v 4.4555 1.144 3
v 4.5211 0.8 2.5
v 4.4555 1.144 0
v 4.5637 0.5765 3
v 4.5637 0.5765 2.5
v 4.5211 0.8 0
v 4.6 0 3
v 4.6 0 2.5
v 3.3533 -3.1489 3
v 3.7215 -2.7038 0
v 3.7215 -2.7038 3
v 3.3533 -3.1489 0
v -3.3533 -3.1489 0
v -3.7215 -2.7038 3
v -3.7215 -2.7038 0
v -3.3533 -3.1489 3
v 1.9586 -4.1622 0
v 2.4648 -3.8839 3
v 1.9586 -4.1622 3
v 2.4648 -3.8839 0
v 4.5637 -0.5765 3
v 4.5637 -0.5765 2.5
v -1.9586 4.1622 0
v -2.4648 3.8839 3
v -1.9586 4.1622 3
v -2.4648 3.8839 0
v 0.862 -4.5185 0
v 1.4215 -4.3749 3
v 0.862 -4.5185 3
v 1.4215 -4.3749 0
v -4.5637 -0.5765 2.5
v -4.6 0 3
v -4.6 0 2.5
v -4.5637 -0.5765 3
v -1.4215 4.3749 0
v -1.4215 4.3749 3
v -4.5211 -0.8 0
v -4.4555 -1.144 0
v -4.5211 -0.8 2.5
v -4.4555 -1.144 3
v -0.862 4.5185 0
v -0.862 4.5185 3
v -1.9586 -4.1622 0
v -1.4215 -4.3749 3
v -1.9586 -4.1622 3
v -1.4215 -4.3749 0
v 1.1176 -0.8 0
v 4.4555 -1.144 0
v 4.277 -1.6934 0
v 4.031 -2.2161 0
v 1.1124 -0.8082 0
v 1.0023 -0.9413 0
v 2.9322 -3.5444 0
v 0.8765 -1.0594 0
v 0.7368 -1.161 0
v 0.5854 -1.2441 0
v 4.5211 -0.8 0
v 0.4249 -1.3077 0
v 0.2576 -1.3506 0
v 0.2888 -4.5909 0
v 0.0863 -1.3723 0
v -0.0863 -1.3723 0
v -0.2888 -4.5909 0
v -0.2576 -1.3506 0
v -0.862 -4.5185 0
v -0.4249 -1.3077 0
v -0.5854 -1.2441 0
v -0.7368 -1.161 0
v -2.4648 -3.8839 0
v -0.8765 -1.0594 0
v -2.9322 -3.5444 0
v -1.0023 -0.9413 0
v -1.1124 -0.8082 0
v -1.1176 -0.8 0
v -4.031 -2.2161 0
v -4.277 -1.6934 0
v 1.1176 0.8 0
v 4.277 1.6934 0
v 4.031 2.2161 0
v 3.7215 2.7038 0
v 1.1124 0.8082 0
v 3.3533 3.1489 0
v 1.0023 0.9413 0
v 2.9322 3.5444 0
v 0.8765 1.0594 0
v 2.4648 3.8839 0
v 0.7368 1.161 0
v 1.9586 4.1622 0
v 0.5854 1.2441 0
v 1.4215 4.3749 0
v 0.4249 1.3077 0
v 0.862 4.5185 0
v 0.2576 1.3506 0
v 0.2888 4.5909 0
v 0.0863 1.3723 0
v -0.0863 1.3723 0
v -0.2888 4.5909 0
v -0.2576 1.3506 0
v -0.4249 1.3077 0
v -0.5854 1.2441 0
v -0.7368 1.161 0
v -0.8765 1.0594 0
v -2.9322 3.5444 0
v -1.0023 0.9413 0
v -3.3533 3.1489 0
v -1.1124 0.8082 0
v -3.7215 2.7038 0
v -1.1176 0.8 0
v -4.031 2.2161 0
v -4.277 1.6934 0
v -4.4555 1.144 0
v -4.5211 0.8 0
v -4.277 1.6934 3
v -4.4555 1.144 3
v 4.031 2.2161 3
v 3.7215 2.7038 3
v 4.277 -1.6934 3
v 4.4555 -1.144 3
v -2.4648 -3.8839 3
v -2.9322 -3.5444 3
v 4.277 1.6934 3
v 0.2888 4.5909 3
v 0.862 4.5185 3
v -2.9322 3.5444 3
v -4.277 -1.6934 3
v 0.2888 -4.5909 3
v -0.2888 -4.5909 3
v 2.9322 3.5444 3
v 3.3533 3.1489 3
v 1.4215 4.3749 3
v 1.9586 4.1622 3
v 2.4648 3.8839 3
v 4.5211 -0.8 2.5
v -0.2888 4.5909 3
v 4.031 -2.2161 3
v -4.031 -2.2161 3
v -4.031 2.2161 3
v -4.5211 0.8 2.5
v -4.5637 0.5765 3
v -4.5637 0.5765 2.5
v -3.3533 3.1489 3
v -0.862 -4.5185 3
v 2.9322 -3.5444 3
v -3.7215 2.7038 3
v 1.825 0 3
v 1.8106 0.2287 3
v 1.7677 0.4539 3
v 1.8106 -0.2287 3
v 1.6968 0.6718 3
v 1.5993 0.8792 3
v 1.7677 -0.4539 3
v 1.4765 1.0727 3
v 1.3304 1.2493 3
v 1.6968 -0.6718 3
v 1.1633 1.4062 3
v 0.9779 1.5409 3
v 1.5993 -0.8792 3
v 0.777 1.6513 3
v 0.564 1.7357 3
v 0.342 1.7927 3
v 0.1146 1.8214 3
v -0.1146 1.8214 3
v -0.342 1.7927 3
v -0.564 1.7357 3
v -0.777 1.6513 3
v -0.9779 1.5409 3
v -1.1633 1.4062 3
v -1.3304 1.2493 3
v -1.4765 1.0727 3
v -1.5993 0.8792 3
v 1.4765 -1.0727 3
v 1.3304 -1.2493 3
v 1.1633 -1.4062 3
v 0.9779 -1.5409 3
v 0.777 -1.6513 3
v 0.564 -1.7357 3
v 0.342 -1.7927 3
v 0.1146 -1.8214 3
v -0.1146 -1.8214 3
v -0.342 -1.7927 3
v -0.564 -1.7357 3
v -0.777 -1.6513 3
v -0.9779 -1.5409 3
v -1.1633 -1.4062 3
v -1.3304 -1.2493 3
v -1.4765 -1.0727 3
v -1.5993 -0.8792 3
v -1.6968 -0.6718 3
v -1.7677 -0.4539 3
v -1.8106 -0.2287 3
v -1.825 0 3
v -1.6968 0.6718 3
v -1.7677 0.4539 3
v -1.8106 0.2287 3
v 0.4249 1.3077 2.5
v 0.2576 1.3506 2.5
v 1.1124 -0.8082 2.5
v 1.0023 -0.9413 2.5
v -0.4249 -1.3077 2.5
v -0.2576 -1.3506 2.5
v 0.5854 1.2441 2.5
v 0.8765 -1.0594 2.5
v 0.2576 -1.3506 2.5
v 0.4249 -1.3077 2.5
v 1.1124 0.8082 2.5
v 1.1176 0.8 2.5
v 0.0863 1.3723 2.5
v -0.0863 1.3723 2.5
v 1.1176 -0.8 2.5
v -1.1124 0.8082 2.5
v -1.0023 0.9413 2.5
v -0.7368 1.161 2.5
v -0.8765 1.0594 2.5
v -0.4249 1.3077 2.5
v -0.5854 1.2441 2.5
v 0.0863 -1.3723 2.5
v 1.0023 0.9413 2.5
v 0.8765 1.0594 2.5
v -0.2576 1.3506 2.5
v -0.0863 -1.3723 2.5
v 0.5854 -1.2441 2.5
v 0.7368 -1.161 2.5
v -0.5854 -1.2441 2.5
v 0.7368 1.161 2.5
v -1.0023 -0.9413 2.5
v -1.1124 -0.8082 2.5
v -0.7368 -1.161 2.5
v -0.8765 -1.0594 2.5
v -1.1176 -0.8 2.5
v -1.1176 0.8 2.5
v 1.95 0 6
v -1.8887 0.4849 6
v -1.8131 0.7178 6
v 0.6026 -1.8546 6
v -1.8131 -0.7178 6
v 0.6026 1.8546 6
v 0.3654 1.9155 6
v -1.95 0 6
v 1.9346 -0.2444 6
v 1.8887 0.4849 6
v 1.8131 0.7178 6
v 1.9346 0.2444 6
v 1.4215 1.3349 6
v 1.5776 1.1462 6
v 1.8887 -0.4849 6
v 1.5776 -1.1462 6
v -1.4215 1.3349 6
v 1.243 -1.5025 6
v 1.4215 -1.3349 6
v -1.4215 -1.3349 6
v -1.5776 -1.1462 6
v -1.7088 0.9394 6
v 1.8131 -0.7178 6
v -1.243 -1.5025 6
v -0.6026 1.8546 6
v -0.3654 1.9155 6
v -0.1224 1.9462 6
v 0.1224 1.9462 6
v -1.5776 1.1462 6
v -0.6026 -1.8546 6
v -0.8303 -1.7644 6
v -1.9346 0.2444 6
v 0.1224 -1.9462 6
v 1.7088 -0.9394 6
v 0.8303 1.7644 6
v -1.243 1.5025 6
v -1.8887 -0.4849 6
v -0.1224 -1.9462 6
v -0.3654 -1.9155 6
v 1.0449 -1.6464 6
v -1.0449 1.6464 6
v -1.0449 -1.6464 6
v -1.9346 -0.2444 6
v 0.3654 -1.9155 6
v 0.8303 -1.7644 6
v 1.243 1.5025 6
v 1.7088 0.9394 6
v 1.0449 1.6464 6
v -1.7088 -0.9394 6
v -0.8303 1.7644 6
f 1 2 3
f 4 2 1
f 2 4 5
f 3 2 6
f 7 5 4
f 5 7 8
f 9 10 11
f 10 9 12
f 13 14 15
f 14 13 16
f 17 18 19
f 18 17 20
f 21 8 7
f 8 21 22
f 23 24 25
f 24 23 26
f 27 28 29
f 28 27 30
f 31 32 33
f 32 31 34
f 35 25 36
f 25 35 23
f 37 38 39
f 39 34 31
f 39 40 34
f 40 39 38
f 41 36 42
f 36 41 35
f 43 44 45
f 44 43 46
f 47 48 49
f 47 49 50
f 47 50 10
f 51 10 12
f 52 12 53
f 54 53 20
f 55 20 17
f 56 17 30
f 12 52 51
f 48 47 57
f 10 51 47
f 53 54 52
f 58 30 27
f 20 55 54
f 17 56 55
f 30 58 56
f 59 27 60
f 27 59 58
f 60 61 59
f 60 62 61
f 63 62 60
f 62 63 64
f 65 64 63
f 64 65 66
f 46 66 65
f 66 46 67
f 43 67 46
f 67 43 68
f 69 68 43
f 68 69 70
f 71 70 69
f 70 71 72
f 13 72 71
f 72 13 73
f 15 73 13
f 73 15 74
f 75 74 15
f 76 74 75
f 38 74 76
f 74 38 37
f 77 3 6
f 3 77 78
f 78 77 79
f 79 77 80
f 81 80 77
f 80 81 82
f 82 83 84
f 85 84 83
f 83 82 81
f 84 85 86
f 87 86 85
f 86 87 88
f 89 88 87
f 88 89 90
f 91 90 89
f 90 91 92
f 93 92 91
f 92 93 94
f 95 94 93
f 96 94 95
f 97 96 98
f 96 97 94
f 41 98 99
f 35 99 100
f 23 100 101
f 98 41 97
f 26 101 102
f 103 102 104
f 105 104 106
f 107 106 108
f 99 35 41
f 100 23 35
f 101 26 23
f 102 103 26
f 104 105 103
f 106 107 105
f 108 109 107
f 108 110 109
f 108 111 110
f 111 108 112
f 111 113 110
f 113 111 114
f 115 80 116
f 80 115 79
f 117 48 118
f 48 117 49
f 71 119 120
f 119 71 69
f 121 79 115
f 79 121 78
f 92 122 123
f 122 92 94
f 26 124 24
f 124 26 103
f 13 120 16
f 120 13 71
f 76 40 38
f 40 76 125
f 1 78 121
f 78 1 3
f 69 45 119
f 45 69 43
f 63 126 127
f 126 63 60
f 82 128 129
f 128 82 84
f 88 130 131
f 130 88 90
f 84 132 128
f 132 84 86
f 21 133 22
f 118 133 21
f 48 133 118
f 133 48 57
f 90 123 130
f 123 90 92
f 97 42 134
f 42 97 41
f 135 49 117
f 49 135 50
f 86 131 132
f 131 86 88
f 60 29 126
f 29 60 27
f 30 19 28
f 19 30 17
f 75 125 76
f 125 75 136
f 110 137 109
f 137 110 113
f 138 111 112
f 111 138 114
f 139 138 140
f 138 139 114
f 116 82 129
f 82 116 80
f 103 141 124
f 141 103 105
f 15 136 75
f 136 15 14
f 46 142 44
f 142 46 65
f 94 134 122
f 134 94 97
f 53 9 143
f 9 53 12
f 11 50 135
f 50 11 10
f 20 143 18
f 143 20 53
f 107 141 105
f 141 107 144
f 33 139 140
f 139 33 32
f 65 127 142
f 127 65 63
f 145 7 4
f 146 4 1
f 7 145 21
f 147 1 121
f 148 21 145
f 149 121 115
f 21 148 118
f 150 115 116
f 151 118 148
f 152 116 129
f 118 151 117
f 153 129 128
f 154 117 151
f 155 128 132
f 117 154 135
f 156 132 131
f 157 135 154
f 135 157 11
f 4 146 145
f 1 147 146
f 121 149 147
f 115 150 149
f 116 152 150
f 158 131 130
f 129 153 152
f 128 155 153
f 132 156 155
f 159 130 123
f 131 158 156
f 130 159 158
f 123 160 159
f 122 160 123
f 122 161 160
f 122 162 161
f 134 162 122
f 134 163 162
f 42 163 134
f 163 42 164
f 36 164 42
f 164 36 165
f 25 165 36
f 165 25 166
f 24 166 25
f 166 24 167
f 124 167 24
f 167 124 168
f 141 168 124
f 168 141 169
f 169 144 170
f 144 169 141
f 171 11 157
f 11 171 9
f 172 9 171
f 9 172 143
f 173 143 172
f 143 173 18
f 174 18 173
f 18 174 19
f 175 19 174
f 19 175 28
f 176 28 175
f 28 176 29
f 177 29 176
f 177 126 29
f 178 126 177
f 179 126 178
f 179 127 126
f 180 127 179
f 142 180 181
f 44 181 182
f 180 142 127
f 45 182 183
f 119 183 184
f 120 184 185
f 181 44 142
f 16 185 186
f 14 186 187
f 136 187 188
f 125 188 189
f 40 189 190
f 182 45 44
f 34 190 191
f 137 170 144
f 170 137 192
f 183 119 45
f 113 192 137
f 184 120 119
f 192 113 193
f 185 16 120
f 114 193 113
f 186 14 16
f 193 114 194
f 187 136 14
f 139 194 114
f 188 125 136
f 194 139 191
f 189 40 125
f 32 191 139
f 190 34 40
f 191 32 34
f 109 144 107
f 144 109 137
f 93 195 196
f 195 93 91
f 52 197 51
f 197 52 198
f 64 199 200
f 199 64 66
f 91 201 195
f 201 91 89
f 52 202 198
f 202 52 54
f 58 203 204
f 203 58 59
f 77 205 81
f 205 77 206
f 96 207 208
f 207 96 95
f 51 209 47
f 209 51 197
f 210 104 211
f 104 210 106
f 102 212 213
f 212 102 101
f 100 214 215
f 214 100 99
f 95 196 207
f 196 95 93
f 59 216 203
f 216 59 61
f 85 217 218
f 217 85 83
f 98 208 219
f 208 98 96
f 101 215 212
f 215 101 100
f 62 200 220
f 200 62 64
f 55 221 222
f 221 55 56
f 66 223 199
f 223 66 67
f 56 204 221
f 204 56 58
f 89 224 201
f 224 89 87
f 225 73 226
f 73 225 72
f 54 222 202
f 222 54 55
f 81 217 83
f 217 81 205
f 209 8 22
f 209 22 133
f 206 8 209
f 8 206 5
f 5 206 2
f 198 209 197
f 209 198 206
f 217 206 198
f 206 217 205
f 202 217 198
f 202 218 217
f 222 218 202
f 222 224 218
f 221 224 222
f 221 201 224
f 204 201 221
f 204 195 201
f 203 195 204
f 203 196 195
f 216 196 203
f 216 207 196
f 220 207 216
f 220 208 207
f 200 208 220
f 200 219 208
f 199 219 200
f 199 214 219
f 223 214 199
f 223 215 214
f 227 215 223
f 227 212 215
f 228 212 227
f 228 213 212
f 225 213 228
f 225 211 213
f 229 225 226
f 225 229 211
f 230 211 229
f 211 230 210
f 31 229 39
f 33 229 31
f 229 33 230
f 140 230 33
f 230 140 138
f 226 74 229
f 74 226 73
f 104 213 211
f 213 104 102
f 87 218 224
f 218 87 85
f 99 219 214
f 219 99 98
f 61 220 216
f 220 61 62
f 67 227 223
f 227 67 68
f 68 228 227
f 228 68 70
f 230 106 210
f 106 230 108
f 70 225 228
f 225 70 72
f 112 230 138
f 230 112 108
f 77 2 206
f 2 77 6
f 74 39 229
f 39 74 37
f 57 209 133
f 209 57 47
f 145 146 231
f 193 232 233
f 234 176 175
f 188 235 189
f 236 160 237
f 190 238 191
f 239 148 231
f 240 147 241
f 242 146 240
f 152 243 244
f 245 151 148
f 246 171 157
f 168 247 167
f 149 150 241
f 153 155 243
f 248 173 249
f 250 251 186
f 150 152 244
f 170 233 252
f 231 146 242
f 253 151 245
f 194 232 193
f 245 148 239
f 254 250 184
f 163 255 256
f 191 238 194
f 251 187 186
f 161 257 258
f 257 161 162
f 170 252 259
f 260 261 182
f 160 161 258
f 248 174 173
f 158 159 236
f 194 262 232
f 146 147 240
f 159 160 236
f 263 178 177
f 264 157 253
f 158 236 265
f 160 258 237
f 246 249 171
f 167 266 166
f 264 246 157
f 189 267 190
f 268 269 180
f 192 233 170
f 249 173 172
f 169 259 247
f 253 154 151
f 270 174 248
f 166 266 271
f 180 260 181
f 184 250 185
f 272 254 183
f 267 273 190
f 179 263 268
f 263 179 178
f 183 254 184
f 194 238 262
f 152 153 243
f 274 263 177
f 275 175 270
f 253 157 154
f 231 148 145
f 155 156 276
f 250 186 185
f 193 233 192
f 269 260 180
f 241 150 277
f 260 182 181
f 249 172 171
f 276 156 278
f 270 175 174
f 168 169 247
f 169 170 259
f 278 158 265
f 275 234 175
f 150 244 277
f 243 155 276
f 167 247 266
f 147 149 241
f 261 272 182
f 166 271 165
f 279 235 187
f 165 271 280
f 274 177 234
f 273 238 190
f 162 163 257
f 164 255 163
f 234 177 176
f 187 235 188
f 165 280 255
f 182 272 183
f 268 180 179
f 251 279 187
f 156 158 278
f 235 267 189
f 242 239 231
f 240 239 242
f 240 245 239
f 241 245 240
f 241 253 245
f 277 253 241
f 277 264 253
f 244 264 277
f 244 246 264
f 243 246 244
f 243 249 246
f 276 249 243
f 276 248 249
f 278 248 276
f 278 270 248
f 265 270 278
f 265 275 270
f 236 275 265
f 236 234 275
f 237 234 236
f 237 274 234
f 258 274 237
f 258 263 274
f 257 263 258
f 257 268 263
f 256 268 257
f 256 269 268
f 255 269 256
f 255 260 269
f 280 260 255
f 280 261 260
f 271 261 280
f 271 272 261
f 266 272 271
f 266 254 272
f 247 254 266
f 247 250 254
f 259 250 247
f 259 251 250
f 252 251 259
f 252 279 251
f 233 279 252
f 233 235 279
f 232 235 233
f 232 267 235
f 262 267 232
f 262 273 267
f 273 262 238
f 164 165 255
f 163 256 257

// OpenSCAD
$fn = 50;
base_diameter = 9.2;
base_thickness = 3;
screw_depth = 2.5;
screw_diameter = 2.75;
slot_thickness = 1.6;
tip_length = 3;
tip_base_diameter = 3.65;
tip_top_diameter = 3.9;
difference()
{
    cylinder(r=base_diameter/2, h = base_thickness);
    cylinder(r=screw_diameter/2, h = screw_depth);
    translate([-base_diameter/2, -slot_thickness/2, 0]) cube([base_diameter, slot_thickness, screw_depth]);
}

translate([0,0,base_thickness])     cylinder(r1=tip_base_diameter/2,r2=tip_top_diameter/2, h = tip_length);
